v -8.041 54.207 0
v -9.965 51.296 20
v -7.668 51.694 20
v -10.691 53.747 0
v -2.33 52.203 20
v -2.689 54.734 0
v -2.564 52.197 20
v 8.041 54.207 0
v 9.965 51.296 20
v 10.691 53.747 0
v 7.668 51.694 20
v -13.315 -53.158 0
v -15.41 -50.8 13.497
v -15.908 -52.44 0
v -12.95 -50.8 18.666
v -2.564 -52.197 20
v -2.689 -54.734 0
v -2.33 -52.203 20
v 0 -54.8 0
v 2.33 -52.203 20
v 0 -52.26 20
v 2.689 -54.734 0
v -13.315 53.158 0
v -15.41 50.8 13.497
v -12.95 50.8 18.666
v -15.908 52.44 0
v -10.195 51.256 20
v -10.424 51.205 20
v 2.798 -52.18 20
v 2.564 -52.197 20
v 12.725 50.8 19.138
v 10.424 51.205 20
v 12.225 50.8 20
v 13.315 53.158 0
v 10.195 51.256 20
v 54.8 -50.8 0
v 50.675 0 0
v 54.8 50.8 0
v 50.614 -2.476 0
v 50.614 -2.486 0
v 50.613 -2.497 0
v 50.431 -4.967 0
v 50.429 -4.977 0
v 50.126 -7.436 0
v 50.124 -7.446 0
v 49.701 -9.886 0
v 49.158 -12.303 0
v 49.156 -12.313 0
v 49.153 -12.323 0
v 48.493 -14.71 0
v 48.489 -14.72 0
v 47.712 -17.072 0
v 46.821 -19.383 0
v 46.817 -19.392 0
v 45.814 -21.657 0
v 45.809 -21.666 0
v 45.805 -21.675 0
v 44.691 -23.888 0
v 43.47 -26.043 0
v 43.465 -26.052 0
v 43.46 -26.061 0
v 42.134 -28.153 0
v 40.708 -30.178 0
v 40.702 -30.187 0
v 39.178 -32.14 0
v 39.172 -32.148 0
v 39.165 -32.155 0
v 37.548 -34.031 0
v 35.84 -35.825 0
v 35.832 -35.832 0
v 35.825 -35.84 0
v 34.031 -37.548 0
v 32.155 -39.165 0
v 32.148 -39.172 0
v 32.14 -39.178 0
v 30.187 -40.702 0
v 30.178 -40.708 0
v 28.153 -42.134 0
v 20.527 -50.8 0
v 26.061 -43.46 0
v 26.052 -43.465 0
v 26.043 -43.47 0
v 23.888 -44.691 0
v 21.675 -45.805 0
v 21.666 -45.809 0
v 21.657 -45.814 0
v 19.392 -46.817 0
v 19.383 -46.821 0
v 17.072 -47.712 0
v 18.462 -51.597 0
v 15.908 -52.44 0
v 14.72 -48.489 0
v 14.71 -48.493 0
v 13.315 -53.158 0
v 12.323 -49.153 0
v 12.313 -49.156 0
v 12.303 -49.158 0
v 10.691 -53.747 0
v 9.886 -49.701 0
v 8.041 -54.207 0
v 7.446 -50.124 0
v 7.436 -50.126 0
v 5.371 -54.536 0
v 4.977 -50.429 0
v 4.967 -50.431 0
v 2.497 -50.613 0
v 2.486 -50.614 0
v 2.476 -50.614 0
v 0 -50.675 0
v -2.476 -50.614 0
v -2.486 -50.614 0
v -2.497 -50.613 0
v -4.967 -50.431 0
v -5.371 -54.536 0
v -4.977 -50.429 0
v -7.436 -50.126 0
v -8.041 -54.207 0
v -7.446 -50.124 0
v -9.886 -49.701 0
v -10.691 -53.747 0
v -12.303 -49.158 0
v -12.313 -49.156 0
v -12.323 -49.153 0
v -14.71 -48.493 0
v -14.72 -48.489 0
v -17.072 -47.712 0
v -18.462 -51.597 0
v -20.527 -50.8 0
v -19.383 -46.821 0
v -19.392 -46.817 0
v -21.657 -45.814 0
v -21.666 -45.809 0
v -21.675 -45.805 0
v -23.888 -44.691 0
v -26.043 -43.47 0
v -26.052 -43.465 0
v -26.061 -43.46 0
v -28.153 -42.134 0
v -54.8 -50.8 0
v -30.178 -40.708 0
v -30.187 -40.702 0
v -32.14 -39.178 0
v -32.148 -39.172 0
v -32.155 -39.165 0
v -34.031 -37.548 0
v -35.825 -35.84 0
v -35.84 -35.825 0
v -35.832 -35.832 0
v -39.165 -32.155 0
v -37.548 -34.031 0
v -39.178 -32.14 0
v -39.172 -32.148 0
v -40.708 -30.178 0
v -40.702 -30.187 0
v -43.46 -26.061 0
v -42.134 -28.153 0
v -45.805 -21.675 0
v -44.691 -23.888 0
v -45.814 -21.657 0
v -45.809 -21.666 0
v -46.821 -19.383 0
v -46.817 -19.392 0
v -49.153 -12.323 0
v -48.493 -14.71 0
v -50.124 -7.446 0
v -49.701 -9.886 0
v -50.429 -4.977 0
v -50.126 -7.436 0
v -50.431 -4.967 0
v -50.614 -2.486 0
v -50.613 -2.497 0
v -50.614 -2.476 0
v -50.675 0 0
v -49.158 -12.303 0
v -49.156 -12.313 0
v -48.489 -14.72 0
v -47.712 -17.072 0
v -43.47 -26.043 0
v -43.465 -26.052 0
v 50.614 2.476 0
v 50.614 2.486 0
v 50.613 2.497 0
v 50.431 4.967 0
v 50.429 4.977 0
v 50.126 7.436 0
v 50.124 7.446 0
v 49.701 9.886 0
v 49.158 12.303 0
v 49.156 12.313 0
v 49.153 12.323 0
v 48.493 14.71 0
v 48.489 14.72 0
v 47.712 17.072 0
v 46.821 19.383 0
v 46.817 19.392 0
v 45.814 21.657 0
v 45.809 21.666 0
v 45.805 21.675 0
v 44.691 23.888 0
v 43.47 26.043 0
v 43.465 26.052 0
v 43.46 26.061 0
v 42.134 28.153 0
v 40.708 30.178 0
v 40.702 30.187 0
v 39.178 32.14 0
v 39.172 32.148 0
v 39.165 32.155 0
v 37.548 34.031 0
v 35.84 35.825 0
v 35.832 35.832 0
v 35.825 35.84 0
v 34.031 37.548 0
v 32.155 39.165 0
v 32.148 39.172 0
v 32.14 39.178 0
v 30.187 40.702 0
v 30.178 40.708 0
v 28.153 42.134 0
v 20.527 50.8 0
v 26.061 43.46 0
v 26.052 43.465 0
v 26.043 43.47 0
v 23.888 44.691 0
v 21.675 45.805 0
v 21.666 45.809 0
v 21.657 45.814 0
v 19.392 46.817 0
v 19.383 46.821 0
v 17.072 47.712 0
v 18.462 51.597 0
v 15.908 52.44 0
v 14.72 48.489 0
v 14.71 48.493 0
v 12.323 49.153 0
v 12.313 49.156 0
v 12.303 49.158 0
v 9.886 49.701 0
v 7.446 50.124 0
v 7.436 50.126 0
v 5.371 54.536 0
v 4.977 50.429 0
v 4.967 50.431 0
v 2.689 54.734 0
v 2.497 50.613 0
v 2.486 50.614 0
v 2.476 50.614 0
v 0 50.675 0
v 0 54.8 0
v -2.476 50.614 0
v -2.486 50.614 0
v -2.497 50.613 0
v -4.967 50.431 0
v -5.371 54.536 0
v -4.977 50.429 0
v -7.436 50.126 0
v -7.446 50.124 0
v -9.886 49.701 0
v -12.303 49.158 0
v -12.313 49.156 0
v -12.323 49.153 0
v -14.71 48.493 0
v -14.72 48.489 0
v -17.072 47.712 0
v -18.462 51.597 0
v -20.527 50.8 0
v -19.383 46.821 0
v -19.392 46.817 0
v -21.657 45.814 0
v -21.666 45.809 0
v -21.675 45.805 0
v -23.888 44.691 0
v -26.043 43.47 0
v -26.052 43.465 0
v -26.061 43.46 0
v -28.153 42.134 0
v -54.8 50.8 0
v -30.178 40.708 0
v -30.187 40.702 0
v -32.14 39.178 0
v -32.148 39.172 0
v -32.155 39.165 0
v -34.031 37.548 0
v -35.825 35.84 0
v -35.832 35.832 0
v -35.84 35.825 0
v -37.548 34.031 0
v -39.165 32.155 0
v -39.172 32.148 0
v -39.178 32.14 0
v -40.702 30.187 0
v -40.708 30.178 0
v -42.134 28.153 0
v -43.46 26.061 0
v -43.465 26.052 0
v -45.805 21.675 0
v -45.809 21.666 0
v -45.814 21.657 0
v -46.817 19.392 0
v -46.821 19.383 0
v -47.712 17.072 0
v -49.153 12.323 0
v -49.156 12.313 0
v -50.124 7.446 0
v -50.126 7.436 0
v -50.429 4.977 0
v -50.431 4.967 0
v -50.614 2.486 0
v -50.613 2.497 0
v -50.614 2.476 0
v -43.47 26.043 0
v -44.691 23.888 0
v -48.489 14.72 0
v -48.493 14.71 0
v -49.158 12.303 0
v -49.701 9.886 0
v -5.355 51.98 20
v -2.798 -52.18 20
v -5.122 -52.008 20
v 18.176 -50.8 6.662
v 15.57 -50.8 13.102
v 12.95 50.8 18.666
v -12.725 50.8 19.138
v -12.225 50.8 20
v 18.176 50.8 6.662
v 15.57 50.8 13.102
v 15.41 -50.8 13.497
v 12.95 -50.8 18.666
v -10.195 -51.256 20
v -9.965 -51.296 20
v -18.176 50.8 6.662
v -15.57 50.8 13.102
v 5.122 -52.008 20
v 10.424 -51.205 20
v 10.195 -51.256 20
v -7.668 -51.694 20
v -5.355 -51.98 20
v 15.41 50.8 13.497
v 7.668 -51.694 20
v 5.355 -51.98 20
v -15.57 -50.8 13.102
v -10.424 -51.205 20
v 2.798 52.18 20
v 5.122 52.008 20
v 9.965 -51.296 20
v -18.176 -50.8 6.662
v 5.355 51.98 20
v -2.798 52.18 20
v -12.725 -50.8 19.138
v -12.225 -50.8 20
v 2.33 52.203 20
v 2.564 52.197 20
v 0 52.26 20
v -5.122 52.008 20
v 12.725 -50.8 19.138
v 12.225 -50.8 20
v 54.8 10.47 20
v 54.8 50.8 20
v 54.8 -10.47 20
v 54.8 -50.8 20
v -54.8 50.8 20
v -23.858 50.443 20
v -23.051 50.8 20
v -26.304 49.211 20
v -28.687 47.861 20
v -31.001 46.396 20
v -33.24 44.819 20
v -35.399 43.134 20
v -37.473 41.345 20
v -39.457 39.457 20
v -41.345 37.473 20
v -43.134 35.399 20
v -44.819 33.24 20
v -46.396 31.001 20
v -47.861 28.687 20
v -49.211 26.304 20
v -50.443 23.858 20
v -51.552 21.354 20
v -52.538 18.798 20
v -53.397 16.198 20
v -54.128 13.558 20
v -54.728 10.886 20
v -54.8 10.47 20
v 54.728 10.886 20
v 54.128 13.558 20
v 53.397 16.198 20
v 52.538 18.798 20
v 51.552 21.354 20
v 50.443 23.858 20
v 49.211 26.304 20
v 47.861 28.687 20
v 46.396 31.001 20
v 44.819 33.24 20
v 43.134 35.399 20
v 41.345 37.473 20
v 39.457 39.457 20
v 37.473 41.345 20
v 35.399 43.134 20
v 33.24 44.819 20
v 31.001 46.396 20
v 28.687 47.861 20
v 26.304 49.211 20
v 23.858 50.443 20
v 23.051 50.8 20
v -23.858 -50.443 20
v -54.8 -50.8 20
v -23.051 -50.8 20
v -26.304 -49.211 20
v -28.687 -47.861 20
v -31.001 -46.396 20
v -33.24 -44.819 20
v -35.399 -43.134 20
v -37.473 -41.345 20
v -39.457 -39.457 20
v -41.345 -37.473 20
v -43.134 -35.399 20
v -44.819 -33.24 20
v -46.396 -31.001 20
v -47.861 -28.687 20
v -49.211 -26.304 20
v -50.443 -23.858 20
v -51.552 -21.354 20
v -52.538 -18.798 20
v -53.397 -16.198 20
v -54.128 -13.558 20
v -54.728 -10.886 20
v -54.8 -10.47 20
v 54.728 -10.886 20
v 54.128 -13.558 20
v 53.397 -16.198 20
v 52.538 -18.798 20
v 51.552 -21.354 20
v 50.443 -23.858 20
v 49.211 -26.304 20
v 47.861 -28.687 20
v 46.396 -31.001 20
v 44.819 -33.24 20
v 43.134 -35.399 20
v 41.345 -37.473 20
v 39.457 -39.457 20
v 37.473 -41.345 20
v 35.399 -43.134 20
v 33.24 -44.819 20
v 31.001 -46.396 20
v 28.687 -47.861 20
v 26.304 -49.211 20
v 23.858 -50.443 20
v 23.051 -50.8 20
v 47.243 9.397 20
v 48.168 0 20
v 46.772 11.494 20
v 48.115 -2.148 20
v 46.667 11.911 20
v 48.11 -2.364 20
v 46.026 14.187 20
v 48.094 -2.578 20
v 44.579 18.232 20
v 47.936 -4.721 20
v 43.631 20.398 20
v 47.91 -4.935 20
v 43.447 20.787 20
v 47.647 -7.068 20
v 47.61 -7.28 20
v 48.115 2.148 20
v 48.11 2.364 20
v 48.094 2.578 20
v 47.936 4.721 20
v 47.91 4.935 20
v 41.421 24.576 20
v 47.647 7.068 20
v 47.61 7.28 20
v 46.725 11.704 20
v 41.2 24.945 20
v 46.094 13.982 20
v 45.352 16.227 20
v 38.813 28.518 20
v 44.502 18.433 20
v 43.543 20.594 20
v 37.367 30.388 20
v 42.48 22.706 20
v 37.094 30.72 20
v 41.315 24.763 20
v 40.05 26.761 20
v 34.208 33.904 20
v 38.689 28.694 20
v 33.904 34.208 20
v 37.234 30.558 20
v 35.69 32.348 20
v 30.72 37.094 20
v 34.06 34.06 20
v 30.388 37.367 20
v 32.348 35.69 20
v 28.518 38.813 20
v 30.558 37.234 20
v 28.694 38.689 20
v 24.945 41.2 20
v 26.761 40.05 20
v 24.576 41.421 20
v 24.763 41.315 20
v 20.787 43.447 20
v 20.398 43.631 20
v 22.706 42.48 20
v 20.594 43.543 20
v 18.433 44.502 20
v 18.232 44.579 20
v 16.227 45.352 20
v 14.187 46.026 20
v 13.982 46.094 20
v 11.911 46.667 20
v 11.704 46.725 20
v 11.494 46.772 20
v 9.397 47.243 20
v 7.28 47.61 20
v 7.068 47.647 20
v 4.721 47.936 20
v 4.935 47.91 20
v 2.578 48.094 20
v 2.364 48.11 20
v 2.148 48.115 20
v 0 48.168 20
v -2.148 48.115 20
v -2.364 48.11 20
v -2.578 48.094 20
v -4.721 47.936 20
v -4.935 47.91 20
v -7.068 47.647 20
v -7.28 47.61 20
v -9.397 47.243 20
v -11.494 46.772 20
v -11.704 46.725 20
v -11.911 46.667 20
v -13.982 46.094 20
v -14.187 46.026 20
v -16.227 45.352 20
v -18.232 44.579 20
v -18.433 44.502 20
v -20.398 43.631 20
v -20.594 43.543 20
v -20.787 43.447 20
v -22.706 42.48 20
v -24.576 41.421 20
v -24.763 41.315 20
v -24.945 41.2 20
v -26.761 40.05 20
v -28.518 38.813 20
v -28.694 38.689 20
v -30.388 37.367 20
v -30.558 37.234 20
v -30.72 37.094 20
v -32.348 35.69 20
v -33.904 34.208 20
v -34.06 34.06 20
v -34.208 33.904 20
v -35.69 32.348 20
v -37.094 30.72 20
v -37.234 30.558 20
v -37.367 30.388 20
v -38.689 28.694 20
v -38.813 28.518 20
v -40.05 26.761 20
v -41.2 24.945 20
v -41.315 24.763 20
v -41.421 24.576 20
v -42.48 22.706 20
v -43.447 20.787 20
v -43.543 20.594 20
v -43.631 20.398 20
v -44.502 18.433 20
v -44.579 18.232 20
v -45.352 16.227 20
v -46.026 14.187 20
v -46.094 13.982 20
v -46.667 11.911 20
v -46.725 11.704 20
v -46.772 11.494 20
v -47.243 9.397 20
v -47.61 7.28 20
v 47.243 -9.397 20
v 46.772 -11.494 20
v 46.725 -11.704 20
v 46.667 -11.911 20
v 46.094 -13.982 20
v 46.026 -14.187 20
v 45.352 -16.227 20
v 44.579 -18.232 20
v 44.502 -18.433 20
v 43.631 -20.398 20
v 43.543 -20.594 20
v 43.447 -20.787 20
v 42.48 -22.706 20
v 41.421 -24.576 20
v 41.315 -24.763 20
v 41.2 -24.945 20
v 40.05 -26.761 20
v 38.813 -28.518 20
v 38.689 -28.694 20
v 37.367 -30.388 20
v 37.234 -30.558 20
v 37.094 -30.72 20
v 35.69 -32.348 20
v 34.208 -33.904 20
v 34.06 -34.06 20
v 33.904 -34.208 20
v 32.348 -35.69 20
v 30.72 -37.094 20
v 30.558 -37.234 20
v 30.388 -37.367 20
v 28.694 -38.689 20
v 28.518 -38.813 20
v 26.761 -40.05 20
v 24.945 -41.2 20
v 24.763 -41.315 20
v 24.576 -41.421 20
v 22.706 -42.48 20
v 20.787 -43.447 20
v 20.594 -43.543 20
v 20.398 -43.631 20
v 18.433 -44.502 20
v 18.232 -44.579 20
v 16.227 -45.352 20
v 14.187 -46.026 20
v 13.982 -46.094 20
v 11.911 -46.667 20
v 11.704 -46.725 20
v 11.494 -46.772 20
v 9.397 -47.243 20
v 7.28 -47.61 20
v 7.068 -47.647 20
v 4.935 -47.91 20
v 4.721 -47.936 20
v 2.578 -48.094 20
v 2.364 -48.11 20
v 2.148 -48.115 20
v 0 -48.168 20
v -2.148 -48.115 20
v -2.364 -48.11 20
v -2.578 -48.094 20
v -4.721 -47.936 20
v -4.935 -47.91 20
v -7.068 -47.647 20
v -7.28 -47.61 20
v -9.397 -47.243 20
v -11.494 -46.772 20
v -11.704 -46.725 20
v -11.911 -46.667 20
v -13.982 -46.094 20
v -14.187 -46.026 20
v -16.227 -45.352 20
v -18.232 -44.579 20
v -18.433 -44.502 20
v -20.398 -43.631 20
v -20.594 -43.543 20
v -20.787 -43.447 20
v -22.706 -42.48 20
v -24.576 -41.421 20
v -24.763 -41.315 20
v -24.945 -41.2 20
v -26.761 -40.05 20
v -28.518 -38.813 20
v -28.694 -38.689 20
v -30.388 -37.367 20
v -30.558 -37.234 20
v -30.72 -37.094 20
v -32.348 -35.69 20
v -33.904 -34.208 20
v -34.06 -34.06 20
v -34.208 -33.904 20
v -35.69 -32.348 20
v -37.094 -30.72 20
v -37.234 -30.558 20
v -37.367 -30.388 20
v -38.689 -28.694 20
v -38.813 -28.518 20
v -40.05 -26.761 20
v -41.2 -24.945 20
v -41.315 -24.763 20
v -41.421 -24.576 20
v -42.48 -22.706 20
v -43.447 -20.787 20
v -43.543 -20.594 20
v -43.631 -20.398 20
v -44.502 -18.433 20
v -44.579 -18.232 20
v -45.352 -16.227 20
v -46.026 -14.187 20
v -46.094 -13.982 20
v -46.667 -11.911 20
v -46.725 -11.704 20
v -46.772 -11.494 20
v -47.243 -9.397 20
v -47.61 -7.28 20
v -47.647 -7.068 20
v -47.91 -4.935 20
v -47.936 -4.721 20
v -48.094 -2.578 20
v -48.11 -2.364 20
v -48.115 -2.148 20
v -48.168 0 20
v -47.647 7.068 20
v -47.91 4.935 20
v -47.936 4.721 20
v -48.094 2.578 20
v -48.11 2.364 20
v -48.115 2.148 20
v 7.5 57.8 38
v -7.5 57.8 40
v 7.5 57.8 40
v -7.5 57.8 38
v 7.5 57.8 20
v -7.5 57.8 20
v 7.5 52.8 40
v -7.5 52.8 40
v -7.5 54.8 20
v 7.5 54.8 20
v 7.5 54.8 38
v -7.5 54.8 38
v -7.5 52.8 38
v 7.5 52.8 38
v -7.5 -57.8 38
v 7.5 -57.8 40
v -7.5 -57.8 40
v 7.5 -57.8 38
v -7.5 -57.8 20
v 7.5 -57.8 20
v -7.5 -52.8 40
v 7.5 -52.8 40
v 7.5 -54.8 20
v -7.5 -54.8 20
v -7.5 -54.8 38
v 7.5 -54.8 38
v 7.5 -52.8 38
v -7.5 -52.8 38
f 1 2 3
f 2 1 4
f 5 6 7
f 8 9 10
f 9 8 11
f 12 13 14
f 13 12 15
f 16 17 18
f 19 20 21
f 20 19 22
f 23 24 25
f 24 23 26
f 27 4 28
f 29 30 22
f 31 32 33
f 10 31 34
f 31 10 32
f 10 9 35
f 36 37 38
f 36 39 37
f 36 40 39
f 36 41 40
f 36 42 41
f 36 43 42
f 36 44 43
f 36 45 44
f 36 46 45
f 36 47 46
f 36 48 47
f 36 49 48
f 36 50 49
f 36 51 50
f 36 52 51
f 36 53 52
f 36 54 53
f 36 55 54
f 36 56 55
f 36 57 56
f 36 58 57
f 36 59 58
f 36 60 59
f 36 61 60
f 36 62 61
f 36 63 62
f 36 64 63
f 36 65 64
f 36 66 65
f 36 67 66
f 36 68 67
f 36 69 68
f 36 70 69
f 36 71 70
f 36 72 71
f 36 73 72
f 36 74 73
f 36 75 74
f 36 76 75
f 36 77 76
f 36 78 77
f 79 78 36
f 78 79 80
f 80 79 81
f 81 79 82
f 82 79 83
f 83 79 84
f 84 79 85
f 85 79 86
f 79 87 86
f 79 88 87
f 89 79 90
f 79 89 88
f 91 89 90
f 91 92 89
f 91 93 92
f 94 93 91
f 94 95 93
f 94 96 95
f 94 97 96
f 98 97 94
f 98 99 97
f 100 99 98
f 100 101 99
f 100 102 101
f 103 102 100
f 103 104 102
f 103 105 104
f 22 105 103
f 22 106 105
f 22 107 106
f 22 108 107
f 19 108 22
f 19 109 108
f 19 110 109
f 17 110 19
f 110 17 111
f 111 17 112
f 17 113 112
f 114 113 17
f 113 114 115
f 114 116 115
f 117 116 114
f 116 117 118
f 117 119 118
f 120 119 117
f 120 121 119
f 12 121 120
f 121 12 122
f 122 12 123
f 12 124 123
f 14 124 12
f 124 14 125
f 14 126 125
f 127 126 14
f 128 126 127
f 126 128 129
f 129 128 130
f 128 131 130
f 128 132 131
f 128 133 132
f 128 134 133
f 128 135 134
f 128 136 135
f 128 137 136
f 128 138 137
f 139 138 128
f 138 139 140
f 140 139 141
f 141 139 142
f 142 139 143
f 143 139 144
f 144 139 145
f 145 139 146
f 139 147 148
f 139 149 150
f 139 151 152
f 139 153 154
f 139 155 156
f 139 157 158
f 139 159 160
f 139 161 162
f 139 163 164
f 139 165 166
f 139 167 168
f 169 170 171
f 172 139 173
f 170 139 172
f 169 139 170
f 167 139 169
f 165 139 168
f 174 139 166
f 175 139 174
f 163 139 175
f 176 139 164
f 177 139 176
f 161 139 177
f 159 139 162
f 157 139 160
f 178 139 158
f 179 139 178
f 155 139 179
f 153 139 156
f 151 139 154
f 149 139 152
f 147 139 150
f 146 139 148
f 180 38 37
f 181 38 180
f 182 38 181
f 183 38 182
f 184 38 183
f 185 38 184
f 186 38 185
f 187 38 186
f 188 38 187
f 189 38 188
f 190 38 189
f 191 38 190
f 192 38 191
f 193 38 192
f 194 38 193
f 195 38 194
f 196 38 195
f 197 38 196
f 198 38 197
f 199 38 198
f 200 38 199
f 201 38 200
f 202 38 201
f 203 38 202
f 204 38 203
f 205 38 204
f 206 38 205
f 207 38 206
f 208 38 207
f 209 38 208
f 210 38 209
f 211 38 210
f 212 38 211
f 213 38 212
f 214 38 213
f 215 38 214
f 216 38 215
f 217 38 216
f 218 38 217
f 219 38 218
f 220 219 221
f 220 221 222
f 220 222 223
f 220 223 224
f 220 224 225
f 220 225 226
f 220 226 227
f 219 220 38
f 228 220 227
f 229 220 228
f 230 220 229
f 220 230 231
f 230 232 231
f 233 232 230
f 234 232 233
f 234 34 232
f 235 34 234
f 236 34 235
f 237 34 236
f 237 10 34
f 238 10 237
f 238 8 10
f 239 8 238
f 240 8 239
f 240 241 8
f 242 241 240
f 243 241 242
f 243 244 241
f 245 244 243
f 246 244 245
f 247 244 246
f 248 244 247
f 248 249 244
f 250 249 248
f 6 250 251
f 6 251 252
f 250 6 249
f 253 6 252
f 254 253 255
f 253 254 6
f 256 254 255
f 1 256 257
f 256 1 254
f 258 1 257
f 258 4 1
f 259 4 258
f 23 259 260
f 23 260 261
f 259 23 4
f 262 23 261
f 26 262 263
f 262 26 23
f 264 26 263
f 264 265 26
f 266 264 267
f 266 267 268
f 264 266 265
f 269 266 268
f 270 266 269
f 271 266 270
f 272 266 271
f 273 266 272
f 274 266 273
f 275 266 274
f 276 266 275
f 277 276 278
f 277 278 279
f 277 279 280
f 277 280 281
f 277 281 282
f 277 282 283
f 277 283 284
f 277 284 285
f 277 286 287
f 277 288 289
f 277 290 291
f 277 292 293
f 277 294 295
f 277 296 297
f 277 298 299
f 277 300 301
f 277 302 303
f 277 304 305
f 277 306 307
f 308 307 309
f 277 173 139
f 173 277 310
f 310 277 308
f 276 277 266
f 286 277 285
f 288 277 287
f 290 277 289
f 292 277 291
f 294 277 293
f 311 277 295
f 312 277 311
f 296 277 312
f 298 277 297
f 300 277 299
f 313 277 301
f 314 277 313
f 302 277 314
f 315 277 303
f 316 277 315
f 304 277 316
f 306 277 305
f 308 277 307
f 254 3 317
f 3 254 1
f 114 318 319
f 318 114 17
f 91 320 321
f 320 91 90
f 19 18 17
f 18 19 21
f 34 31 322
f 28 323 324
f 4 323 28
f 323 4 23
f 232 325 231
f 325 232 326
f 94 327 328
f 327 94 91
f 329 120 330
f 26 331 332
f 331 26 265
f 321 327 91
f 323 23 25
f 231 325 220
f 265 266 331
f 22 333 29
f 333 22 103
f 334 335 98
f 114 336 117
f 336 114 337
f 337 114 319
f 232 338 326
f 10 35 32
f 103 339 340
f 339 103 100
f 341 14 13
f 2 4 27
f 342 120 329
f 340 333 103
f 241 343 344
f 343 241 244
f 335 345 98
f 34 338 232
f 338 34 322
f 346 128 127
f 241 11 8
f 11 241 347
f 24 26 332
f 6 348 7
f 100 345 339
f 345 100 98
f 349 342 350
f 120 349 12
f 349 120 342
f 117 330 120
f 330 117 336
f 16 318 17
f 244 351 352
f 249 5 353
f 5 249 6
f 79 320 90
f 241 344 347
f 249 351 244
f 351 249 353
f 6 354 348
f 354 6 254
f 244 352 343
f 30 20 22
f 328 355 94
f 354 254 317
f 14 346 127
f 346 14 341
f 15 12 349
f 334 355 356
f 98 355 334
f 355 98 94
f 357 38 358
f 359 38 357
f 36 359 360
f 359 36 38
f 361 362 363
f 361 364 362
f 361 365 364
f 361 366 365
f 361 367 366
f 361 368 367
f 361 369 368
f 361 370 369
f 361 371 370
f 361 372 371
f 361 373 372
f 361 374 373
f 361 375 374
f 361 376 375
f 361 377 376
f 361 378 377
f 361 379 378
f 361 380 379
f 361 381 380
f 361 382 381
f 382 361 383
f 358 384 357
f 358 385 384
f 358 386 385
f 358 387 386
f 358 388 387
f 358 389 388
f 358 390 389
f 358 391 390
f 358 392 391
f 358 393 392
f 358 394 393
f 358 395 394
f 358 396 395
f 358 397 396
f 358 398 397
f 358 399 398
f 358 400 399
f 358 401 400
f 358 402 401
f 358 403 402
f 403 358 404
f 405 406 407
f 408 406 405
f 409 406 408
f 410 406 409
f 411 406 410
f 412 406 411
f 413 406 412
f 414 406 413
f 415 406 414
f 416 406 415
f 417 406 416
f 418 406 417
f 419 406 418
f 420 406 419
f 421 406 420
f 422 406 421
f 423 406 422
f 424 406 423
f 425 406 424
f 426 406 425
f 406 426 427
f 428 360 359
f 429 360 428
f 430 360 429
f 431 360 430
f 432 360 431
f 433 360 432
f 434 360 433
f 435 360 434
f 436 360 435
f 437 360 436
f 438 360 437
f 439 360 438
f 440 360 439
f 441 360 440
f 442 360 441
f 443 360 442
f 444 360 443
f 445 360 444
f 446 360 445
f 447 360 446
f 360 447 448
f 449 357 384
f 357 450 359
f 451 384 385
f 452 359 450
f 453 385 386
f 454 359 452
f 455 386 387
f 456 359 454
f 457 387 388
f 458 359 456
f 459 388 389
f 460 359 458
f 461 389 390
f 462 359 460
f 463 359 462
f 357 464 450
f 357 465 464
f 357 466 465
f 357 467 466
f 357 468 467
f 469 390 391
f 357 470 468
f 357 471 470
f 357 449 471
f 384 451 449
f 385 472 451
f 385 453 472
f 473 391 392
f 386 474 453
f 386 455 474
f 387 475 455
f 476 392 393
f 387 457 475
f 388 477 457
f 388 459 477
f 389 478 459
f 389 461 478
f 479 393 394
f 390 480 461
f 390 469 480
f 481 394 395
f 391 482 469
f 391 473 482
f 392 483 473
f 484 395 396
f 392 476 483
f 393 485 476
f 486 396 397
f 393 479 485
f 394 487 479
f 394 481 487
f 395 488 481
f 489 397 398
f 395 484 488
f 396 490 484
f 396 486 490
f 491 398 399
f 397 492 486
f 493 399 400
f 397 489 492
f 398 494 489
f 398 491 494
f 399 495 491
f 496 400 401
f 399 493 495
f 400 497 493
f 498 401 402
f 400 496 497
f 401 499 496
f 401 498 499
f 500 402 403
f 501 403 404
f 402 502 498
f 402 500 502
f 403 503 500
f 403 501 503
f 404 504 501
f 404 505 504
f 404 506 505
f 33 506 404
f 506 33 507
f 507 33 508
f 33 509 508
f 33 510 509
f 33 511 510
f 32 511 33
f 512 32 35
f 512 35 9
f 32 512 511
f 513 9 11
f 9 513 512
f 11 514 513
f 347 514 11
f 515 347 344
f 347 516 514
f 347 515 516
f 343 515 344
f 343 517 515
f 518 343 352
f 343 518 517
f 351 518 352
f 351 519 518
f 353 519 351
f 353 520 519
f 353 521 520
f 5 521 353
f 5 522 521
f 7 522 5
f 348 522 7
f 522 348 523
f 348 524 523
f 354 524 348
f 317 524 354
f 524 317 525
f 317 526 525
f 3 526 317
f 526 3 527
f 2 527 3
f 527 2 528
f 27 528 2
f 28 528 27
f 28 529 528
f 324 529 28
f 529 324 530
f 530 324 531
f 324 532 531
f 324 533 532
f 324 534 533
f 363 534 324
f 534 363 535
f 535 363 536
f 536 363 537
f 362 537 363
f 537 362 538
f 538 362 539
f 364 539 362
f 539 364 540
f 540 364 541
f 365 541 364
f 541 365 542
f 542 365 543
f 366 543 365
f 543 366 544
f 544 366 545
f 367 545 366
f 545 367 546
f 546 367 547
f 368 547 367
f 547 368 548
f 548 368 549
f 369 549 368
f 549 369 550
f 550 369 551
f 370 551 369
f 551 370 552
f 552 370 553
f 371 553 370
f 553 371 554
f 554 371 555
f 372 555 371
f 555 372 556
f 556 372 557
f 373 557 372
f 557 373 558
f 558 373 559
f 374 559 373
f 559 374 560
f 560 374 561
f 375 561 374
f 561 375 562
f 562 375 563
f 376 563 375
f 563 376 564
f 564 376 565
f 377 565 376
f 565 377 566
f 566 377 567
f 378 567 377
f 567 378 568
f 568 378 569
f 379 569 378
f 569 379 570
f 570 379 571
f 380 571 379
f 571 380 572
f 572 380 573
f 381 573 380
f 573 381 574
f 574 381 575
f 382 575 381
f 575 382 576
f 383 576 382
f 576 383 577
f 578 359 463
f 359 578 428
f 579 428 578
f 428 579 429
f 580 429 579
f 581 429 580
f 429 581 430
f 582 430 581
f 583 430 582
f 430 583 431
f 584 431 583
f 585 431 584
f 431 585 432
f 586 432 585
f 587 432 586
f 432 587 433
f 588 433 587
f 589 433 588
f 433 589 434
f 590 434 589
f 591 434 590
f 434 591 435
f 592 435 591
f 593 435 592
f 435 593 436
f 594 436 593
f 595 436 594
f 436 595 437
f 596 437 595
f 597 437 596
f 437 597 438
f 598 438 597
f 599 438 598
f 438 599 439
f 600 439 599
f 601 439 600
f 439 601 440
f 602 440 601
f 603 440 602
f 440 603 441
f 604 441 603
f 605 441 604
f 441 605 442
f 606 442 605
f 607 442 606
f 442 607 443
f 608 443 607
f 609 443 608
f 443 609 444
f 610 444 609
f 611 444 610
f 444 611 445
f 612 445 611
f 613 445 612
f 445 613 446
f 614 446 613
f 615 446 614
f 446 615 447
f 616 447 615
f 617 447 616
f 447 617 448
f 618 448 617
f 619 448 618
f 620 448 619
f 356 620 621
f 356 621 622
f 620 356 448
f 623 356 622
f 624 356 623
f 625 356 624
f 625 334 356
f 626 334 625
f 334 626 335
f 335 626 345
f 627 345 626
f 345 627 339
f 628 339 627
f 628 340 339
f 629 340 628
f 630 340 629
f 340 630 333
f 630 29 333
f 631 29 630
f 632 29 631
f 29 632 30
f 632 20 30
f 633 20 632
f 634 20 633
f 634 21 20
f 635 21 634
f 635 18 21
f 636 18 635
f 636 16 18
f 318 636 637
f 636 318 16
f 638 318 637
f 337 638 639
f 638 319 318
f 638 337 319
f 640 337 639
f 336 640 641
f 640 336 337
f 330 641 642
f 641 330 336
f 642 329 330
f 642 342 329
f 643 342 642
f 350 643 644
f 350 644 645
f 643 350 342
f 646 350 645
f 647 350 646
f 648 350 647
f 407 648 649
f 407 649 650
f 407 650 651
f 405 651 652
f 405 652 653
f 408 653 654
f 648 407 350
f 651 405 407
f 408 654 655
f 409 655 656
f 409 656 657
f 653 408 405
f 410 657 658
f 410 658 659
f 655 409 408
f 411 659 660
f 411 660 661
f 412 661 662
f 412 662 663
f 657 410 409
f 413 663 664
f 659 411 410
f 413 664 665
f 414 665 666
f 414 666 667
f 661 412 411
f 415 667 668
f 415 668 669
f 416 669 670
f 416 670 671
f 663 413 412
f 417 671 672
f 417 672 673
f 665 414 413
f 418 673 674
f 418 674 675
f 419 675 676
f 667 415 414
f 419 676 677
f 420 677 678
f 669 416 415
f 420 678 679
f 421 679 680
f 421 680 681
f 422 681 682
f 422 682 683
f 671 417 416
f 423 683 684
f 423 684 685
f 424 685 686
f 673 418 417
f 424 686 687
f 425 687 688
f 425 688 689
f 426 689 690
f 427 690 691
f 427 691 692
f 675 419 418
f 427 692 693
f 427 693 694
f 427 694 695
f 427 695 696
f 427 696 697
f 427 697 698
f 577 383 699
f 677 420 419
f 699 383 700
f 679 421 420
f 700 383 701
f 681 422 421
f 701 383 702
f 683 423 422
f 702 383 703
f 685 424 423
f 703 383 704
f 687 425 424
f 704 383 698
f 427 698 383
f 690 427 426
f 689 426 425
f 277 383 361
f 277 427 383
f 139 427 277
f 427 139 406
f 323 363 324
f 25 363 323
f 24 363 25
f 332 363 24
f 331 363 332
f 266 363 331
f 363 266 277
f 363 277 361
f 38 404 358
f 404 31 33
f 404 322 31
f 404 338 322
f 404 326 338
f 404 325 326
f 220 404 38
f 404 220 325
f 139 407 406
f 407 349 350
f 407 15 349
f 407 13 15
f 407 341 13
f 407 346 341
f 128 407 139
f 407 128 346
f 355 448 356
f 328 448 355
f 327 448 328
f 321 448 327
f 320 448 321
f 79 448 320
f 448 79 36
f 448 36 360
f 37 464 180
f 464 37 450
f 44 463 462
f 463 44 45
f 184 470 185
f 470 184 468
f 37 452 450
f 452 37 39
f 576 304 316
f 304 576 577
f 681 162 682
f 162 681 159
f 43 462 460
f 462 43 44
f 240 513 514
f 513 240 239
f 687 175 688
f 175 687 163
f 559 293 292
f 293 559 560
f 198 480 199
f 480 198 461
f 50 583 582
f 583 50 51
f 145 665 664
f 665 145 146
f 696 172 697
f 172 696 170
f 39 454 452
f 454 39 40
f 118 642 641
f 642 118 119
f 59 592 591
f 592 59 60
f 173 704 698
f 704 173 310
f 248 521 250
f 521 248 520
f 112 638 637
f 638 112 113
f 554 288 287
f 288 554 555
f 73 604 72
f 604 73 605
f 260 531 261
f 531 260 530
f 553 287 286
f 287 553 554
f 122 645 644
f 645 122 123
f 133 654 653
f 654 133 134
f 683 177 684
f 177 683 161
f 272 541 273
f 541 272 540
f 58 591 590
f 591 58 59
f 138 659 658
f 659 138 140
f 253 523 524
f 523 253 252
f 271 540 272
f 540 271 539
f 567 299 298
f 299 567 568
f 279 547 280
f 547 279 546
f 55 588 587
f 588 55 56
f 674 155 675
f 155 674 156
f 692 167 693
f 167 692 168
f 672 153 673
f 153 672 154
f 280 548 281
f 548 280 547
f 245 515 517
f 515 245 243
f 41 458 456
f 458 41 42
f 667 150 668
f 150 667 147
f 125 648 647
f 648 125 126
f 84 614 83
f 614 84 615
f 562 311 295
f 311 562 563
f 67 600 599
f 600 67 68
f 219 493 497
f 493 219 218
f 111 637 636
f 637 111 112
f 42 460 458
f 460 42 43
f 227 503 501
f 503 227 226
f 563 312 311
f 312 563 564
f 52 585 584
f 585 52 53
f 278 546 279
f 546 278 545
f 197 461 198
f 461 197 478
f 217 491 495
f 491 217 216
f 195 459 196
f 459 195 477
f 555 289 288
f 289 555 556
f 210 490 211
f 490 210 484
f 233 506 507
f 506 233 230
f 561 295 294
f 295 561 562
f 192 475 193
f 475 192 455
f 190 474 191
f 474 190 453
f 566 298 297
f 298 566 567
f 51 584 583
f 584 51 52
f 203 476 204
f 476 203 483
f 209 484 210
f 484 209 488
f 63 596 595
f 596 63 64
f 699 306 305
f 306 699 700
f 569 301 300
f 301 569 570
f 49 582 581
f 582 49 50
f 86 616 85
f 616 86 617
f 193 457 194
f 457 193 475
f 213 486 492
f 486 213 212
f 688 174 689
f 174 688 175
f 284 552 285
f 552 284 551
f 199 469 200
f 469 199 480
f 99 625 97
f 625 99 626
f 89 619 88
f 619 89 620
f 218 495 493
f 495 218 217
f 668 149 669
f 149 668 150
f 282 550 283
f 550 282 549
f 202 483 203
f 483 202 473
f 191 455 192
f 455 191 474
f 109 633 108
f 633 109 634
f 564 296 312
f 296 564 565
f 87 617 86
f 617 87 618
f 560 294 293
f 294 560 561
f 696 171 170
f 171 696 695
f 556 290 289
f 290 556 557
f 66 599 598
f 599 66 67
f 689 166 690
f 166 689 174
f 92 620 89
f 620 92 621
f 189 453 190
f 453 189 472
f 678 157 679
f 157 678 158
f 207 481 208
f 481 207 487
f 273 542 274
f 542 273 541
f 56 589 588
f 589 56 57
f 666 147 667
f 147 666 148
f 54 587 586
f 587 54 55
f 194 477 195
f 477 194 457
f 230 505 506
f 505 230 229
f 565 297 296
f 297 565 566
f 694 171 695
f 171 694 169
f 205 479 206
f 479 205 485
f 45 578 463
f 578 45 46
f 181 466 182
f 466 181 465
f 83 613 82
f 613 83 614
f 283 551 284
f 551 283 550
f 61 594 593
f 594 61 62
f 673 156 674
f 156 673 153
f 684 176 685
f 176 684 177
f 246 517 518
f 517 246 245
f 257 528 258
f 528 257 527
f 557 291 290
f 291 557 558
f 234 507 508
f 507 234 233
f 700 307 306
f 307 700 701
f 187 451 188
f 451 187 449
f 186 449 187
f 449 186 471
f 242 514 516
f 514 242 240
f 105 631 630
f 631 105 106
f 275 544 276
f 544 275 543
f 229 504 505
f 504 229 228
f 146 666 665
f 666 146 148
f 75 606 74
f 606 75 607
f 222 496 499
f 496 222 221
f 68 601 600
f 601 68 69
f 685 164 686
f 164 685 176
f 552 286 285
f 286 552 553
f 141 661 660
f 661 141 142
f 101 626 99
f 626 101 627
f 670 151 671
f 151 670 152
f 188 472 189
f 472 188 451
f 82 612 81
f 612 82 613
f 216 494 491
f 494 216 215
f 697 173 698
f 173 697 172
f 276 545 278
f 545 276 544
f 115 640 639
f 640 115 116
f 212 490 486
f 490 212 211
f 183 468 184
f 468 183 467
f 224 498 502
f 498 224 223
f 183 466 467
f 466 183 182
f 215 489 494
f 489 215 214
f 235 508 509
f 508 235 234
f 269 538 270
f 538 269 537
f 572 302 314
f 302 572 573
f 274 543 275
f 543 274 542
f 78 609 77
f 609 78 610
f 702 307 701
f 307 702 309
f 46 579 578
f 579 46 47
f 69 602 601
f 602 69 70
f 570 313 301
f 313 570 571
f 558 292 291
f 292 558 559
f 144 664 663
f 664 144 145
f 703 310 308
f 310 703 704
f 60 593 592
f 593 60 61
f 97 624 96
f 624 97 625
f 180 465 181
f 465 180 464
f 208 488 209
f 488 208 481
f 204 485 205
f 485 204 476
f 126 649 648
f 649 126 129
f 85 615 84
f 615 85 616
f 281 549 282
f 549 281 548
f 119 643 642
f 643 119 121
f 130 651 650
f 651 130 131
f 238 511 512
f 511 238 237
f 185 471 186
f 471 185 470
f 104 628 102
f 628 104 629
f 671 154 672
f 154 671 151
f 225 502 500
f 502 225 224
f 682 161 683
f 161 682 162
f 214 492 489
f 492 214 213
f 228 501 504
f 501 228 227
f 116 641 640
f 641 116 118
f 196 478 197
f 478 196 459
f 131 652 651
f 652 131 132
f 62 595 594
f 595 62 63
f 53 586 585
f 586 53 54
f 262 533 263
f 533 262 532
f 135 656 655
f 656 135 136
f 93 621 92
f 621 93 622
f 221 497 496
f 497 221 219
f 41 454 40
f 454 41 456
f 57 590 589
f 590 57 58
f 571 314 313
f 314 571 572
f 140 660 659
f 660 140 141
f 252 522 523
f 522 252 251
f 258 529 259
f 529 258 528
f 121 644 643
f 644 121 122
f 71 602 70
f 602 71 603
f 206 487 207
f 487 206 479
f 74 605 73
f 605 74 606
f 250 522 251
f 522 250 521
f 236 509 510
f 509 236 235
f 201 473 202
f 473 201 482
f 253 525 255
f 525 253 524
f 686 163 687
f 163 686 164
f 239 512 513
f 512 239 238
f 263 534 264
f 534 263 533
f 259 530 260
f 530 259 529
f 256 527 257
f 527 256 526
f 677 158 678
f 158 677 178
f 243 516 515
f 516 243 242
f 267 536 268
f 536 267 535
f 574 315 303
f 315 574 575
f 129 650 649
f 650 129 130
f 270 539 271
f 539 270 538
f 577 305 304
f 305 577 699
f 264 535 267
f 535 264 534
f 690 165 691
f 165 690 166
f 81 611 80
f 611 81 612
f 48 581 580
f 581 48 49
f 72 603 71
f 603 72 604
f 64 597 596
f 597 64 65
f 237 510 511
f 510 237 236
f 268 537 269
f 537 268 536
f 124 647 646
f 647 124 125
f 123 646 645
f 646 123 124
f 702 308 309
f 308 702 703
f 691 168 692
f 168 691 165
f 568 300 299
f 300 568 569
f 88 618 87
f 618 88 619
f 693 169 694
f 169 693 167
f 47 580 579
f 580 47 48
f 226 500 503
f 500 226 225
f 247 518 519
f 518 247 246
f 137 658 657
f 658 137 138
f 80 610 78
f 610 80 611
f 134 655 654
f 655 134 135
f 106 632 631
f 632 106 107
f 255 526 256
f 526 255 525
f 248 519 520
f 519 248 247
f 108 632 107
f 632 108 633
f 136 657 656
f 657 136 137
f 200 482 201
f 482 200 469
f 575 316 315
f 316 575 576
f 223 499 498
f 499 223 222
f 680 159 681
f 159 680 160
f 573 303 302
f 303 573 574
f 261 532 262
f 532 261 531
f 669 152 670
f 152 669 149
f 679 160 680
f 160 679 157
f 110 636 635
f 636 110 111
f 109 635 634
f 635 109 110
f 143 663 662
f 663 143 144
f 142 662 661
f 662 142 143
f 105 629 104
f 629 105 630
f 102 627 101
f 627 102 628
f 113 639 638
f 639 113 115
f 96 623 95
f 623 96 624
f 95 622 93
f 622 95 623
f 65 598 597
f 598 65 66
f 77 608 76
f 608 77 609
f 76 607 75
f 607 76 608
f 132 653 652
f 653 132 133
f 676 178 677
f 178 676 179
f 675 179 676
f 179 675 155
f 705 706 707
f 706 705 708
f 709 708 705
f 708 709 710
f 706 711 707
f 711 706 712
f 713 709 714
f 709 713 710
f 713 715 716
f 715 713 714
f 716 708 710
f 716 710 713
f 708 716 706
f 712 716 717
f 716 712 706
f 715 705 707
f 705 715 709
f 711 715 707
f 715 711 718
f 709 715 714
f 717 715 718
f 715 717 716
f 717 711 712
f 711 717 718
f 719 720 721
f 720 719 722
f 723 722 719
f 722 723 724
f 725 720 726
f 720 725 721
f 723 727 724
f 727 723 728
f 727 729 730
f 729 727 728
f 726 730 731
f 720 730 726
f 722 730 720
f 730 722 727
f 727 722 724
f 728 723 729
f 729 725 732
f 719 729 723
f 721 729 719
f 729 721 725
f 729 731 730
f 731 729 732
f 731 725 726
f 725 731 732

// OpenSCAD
// ShopVac Rat Trap 2025 - Funnel Adapter
// Engineer: Gemini
// Date: 2025-08-15
//
// ========== REVISION HIGHLIGHTS ==========
// - NEW: Funnel adapter to connect the trap to a shop vacuum.
// - NEW: Modular design with a snap-fit connection to the main trap body.
// - NEW: Parametric nozzle to support various vacuum hose sizes.
// =========================================

// ========== CORE PARAMETERS ==========

// [Dimensions]
tube_diameter = 101.6; // 4 inches
tube_wall_thickness = 4;
funnel_length = 150;
flat_base_height = 20;

// [Nozzle Dimensions]
nozzle_diameter = 63.5; // 2.5 inches
nozzle_length = 50;

// [Snap-Fit Connector Parameters - Must match trap_body_main.scad]
clip_width = 15;
clip_thickness = 3;
clip_length = 20;
clip_hook_depth = 2;

$fn = 128;

// ========== MODULES ==========

module snap_fit_clip() {
    // Cantilever snap-fit clip
    difference() {
        cube([clip_thickness, clip_width, clip_length]);
        translate([clip_thickness, 0, clip_length - clip_hook_depth]) {
            cube([clip_thickness, clip_width, clip_hook_depth * 2]);
        }
    }
    translate([-clip_hook_depth, 0, clip_length - clip_hook_depth]) {
        cube([clip_hook_depth, clip_width, clip_hook_depth]);
    }
}

module trap_funnel_adapter() {
    difference() {
        union() {
            // Main funnel body
            cylinder(h = funnel_length, d1 = tube_diameter + (2 * tube_wall_thickness), d2 = nozzle_diameter + (2 * tube_wall_thickness), center = false);

            // Flat base
            translate([- (tube_diameter / 2) - tube_wall_thickness, -tube_diameter / 2, 0]) {
                cube([tube_diameter + (2 * tube_wall_thickness), tube_diameter, flat_base_height]);
            }
        }

        // Hollow out the inside
        translate([0, 0, -1]) {
            cylinder(h = funnel_length + 2, d1 = tube_diameter, d2 = nozzle_diameter, center = false);
        }

        // Cut away the top of the flat base to match the funnel
        translate([0, 0, flat_base_height]) {
            cylinder(h = funnel_length, d1 = tube_diameter + (2 * tube_wall_thickness) + 2, d2 = nozzle_diameter + (2 * tube_wall_thickness) + 2, center = false);
        }
    }

    // Add snap-fit clips
    for (a = [90, 270]) {
        rotate([0, 0, a]) {
            translate([tube_diameter / 2 + tube_wall_thickness, -clip_width / 2, 20]) {
                snap_fit_clip();
            }
        }
    }
}

// ========== ASSEMBLY CALL ==========
trap_funnel_adapter();
